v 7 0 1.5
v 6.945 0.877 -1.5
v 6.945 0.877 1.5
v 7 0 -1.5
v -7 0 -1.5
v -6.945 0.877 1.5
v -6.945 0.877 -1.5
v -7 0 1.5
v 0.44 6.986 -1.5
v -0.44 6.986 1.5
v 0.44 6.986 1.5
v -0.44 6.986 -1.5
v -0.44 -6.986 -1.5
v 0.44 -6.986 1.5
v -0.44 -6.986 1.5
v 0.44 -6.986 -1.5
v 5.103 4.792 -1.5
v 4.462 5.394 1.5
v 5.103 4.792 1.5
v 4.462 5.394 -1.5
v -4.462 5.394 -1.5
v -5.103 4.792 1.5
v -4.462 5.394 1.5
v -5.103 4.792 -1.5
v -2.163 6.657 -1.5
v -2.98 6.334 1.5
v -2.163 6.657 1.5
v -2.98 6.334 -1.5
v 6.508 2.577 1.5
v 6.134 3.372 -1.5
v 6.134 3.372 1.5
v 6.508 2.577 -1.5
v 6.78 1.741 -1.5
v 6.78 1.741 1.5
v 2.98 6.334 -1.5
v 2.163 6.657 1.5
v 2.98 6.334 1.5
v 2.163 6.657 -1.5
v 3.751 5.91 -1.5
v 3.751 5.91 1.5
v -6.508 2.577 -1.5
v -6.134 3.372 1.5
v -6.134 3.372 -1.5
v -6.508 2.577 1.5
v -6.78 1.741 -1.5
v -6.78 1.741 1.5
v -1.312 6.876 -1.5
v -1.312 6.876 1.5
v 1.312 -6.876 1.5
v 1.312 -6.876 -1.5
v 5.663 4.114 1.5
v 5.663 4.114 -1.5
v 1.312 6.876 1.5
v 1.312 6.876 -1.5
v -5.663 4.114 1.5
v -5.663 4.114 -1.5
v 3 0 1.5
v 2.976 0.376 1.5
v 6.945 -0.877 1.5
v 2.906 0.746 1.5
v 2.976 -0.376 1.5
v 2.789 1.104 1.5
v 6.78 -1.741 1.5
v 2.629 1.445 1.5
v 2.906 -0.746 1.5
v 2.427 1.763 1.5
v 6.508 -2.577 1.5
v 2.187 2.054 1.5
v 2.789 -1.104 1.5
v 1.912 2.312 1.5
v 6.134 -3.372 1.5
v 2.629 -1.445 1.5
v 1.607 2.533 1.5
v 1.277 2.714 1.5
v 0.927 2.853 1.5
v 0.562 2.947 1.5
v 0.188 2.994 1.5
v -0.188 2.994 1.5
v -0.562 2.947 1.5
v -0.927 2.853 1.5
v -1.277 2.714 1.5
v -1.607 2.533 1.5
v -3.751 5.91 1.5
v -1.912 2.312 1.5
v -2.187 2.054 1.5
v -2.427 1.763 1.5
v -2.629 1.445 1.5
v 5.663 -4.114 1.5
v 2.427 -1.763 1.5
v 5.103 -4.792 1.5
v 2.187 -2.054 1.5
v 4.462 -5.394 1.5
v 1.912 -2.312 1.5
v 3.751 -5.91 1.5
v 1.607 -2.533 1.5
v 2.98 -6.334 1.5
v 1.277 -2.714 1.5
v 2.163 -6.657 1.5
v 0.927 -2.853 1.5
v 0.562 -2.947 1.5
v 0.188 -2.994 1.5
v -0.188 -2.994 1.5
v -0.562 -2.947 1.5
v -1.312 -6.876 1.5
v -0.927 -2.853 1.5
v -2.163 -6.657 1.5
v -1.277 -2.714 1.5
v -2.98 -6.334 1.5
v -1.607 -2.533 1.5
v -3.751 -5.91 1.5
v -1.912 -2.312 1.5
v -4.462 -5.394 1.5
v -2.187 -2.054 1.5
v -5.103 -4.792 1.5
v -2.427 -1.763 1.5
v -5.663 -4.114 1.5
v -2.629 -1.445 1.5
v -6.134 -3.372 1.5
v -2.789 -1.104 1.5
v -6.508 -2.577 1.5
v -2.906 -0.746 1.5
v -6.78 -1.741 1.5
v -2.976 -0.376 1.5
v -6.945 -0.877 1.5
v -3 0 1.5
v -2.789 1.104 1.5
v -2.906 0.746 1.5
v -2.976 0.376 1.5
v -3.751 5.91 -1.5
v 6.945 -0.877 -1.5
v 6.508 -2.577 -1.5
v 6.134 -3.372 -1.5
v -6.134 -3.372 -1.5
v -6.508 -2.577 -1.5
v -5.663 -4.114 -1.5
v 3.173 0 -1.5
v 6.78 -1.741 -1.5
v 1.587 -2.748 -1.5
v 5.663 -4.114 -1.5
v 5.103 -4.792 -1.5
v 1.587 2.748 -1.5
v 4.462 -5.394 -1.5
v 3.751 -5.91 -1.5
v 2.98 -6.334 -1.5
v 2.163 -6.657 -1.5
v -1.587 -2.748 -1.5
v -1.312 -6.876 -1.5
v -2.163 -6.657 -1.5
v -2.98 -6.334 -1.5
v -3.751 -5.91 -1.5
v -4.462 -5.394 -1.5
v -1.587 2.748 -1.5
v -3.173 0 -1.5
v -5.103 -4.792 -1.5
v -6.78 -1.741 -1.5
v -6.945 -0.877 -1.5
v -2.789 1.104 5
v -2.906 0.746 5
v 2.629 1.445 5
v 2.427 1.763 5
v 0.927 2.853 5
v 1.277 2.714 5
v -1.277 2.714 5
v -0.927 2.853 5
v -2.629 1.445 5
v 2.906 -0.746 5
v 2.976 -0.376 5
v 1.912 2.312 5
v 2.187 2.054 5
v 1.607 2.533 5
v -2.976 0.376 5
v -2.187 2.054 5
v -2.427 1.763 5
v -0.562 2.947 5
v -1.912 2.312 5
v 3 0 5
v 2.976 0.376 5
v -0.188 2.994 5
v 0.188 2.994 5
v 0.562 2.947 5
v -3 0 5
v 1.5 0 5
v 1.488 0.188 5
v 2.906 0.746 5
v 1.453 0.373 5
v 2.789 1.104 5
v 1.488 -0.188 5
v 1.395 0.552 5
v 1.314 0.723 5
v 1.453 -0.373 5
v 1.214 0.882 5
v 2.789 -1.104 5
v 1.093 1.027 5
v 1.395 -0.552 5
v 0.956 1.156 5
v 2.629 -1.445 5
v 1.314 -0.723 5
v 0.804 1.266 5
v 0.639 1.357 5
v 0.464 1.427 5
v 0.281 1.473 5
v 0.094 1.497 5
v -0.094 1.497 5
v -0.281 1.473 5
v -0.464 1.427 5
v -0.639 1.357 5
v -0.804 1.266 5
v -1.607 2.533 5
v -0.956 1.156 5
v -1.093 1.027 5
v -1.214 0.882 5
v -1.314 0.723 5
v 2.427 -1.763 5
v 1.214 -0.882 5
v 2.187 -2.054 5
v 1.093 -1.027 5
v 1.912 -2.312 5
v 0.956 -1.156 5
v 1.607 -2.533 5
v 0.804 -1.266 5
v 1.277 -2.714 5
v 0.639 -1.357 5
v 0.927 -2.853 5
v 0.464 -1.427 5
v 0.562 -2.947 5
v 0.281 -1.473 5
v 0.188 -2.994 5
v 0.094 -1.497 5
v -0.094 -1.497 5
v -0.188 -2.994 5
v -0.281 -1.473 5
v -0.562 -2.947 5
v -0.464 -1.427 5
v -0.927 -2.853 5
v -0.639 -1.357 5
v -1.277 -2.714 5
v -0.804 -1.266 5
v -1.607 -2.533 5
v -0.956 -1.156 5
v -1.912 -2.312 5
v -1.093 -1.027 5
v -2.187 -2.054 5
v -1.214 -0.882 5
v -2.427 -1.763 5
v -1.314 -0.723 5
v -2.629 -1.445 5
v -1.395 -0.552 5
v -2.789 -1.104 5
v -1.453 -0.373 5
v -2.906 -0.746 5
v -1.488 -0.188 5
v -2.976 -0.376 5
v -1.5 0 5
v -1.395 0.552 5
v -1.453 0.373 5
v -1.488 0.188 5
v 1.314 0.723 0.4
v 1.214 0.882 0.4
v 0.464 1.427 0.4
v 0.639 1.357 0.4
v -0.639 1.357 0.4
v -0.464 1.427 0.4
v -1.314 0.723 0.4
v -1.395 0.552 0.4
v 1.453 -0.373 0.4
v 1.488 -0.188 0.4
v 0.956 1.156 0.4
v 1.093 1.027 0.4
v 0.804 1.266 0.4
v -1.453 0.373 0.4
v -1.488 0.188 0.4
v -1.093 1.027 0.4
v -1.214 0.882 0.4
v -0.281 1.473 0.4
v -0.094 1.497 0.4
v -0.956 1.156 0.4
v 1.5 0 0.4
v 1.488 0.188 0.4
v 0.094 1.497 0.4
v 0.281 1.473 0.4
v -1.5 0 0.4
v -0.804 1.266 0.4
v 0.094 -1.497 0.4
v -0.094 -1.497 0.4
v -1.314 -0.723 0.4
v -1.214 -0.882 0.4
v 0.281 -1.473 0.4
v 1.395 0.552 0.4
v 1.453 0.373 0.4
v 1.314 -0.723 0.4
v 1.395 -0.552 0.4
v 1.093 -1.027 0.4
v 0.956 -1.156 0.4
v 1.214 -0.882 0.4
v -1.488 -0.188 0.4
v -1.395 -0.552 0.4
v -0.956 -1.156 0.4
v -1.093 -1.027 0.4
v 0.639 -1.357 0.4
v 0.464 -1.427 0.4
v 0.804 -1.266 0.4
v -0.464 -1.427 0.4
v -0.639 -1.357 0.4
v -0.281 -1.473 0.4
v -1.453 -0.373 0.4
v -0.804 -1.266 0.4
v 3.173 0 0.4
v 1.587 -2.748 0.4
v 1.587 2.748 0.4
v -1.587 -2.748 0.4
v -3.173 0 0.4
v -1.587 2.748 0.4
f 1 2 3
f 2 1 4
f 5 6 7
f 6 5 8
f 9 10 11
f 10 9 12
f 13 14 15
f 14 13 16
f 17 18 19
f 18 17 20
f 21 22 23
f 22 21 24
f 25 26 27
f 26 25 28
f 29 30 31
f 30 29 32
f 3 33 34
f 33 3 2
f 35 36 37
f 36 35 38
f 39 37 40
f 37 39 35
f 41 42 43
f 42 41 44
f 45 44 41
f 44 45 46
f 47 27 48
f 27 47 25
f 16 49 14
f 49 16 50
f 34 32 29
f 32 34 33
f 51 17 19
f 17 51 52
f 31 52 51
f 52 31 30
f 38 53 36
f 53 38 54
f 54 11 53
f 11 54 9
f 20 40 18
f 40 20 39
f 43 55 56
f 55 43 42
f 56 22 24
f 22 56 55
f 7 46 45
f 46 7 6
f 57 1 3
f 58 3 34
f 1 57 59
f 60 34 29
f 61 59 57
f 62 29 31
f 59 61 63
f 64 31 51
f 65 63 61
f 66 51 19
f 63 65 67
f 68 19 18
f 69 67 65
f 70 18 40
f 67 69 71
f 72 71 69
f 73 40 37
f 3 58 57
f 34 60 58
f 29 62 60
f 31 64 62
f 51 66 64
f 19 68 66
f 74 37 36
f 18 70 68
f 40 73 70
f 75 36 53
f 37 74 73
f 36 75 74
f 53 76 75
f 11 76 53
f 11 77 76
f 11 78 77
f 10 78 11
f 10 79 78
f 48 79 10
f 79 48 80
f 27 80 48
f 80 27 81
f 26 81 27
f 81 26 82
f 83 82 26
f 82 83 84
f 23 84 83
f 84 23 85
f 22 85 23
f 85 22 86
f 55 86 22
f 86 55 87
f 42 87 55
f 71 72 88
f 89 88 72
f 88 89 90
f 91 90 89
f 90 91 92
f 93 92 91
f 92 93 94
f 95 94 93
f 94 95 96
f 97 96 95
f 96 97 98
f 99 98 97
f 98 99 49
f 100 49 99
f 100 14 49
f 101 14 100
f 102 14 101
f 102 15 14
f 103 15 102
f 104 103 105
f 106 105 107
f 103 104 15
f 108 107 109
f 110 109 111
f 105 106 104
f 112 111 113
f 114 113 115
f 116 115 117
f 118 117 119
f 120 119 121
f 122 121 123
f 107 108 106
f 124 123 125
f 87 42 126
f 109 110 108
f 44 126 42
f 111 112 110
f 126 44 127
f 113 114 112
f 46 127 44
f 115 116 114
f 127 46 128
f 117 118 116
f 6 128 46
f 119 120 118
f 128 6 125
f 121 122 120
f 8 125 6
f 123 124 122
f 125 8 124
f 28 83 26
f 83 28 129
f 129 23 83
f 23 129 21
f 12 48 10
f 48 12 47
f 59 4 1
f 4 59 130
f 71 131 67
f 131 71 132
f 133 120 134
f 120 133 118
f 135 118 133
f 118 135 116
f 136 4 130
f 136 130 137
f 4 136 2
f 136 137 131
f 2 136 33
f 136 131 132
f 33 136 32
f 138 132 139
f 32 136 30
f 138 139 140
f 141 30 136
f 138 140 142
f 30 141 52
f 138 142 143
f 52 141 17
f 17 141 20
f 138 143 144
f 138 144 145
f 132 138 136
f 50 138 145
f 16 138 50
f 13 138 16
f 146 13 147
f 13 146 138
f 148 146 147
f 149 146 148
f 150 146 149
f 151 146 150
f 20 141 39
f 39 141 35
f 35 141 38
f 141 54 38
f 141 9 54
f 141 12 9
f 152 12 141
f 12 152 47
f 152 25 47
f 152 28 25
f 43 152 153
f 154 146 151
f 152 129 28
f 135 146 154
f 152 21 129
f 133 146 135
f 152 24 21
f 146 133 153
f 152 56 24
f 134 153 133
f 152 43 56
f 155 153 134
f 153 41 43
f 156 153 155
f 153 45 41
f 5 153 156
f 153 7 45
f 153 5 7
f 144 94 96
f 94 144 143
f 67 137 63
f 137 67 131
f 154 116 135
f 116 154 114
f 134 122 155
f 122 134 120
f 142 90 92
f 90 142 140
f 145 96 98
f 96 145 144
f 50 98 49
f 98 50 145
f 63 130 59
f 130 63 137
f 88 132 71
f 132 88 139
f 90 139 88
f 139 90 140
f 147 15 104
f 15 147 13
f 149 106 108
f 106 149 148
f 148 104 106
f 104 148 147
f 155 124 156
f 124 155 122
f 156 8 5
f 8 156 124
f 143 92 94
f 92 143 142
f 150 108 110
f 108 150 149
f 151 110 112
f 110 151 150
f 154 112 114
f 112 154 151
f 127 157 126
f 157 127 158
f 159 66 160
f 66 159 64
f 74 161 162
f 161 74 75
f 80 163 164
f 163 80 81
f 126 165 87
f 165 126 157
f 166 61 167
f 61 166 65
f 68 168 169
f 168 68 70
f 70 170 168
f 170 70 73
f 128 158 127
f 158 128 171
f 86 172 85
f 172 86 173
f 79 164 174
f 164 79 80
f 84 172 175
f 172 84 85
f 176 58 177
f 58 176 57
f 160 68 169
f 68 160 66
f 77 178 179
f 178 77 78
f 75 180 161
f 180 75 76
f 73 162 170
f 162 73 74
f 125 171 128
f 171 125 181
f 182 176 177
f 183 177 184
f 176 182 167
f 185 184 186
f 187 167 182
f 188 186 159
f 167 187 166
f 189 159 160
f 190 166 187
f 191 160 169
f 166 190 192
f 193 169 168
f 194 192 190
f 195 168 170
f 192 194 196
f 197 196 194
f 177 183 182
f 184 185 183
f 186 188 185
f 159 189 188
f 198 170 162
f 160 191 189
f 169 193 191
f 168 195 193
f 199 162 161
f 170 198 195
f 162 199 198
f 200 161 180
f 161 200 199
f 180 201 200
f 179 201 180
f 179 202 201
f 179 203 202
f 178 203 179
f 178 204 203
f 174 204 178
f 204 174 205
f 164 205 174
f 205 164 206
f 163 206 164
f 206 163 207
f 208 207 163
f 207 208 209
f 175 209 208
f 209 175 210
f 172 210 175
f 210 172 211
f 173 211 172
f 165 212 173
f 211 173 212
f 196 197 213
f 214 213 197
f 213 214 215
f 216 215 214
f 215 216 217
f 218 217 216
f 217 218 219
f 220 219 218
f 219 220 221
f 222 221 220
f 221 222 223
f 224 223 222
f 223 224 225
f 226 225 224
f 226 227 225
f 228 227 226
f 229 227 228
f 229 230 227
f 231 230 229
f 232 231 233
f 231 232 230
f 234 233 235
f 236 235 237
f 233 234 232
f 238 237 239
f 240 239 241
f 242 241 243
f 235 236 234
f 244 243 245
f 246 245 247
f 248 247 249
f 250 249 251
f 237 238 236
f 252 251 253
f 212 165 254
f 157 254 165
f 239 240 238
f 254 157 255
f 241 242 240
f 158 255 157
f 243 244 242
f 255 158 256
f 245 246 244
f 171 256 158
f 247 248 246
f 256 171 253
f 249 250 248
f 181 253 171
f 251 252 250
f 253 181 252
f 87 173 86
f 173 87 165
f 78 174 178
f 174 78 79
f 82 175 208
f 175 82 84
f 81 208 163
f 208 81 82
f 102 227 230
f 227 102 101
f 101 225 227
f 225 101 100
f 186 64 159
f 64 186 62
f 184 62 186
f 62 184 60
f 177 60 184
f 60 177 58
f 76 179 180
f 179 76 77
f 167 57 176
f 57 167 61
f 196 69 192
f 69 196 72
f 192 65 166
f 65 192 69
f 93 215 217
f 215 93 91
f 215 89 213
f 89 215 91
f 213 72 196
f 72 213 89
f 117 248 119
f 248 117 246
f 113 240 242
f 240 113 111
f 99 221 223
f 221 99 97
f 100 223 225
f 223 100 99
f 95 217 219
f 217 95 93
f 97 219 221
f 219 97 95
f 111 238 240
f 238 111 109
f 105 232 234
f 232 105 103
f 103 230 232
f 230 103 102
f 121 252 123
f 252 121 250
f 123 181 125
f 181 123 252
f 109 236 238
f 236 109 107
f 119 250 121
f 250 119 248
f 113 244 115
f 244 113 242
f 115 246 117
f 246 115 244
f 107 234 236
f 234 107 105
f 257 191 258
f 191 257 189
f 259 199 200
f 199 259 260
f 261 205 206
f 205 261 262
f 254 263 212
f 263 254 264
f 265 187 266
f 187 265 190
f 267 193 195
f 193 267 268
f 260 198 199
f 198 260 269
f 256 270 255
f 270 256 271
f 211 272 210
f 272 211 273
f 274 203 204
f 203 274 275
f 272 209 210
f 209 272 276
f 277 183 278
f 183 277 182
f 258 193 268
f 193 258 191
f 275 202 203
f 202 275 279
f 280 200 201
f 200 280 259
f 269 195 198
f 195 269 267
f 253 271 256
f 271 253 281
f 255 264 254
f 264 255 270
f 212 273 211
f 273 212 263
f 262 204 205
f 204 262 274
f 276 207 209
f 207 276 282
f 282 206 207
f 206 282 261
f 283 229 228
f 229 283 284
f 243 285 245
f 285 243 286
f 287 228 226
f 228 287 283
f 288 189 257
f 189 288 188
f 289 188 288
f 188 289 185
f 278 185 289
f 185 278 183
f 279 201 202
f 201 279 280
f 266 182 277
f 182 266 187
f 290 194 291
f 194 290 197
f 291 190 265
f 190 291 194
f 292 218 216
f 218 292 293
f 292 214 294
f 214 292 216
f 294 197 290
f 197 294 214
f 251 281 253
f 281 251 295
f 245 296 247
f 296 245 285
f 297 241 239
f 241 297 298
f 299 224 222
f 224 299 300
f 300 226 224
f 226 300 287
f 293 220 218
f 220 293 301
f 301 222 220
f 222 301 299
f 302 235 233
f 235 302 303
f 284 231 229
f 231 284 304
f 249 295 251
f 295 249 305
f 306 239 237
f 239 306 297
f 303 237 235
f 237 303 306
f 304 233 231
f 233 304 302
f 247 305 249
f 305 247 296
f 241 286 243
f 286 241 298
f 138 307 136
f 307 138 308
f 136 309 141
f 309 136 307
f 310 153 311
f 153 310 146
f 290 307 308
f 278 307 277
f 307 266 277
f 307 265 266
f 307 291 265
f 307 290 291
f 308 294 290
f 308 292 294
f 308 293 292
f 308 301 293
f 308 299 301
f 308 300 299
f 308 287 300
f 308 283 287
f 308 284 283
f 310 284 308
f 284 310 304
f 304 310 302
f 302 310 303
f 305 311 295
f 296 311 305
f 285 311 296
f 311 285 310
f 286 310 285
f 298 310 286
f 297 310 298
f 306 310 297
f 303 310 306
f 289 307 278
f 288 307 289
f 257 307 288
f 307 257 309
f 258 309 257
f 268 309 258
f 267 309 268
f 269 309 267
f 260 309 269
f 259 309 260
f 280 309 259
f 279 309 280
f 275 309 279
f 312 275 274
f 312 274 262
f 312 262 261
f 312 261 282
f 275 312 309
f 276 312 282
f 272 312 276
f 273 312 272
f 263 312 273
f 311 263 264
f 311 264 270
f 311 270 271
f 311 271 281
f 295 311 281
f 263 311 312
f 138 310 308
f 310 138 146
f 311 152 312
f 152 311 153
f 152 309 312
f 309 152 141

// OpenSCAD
$fn = 50;


difference() {
	union() {
		translate(v = [0, 0, -1.5000000000]) {
			rotate(a = [0, 0, 0]) {
				cylinder(h = 3, r = 7.0000000000);
			}
		}
		translate(v = [0, 0, -1.5000000000]) {
			rotate(a = [0, 0, 0]) {
				cylinder(h = 6.5000000000, r = 3.0000000000);
			}
		}
	}
	union() {
		translate(v = [0, 0, -125.0000000000]) {
			rotate(a = [0, 0, 0]) {
				cylinder(h = 250, r = 1.5000000000);
			}
		}
		translate(v = [0, 0, -2.1000000000]) {
			rotate(a = [0, 0, 0]) {
				#translate(v = [0, 0, 0]) {
					rotate(a = [0, 0, 0]) {
						linear_extrude(height = 2.5000000000) {
							polygon(points = [[3.1735000000, 0.0000000000], [1.5867500000, 2.7483316189], [-1.5867500000, 2.7483316189], [-3.1735000000, 0.0000000000], [-1.5867500000, -2.7483316189], [1.5867500000, -2.7483316189]]);
						}
					}
				}
			}
		}
	}
}
